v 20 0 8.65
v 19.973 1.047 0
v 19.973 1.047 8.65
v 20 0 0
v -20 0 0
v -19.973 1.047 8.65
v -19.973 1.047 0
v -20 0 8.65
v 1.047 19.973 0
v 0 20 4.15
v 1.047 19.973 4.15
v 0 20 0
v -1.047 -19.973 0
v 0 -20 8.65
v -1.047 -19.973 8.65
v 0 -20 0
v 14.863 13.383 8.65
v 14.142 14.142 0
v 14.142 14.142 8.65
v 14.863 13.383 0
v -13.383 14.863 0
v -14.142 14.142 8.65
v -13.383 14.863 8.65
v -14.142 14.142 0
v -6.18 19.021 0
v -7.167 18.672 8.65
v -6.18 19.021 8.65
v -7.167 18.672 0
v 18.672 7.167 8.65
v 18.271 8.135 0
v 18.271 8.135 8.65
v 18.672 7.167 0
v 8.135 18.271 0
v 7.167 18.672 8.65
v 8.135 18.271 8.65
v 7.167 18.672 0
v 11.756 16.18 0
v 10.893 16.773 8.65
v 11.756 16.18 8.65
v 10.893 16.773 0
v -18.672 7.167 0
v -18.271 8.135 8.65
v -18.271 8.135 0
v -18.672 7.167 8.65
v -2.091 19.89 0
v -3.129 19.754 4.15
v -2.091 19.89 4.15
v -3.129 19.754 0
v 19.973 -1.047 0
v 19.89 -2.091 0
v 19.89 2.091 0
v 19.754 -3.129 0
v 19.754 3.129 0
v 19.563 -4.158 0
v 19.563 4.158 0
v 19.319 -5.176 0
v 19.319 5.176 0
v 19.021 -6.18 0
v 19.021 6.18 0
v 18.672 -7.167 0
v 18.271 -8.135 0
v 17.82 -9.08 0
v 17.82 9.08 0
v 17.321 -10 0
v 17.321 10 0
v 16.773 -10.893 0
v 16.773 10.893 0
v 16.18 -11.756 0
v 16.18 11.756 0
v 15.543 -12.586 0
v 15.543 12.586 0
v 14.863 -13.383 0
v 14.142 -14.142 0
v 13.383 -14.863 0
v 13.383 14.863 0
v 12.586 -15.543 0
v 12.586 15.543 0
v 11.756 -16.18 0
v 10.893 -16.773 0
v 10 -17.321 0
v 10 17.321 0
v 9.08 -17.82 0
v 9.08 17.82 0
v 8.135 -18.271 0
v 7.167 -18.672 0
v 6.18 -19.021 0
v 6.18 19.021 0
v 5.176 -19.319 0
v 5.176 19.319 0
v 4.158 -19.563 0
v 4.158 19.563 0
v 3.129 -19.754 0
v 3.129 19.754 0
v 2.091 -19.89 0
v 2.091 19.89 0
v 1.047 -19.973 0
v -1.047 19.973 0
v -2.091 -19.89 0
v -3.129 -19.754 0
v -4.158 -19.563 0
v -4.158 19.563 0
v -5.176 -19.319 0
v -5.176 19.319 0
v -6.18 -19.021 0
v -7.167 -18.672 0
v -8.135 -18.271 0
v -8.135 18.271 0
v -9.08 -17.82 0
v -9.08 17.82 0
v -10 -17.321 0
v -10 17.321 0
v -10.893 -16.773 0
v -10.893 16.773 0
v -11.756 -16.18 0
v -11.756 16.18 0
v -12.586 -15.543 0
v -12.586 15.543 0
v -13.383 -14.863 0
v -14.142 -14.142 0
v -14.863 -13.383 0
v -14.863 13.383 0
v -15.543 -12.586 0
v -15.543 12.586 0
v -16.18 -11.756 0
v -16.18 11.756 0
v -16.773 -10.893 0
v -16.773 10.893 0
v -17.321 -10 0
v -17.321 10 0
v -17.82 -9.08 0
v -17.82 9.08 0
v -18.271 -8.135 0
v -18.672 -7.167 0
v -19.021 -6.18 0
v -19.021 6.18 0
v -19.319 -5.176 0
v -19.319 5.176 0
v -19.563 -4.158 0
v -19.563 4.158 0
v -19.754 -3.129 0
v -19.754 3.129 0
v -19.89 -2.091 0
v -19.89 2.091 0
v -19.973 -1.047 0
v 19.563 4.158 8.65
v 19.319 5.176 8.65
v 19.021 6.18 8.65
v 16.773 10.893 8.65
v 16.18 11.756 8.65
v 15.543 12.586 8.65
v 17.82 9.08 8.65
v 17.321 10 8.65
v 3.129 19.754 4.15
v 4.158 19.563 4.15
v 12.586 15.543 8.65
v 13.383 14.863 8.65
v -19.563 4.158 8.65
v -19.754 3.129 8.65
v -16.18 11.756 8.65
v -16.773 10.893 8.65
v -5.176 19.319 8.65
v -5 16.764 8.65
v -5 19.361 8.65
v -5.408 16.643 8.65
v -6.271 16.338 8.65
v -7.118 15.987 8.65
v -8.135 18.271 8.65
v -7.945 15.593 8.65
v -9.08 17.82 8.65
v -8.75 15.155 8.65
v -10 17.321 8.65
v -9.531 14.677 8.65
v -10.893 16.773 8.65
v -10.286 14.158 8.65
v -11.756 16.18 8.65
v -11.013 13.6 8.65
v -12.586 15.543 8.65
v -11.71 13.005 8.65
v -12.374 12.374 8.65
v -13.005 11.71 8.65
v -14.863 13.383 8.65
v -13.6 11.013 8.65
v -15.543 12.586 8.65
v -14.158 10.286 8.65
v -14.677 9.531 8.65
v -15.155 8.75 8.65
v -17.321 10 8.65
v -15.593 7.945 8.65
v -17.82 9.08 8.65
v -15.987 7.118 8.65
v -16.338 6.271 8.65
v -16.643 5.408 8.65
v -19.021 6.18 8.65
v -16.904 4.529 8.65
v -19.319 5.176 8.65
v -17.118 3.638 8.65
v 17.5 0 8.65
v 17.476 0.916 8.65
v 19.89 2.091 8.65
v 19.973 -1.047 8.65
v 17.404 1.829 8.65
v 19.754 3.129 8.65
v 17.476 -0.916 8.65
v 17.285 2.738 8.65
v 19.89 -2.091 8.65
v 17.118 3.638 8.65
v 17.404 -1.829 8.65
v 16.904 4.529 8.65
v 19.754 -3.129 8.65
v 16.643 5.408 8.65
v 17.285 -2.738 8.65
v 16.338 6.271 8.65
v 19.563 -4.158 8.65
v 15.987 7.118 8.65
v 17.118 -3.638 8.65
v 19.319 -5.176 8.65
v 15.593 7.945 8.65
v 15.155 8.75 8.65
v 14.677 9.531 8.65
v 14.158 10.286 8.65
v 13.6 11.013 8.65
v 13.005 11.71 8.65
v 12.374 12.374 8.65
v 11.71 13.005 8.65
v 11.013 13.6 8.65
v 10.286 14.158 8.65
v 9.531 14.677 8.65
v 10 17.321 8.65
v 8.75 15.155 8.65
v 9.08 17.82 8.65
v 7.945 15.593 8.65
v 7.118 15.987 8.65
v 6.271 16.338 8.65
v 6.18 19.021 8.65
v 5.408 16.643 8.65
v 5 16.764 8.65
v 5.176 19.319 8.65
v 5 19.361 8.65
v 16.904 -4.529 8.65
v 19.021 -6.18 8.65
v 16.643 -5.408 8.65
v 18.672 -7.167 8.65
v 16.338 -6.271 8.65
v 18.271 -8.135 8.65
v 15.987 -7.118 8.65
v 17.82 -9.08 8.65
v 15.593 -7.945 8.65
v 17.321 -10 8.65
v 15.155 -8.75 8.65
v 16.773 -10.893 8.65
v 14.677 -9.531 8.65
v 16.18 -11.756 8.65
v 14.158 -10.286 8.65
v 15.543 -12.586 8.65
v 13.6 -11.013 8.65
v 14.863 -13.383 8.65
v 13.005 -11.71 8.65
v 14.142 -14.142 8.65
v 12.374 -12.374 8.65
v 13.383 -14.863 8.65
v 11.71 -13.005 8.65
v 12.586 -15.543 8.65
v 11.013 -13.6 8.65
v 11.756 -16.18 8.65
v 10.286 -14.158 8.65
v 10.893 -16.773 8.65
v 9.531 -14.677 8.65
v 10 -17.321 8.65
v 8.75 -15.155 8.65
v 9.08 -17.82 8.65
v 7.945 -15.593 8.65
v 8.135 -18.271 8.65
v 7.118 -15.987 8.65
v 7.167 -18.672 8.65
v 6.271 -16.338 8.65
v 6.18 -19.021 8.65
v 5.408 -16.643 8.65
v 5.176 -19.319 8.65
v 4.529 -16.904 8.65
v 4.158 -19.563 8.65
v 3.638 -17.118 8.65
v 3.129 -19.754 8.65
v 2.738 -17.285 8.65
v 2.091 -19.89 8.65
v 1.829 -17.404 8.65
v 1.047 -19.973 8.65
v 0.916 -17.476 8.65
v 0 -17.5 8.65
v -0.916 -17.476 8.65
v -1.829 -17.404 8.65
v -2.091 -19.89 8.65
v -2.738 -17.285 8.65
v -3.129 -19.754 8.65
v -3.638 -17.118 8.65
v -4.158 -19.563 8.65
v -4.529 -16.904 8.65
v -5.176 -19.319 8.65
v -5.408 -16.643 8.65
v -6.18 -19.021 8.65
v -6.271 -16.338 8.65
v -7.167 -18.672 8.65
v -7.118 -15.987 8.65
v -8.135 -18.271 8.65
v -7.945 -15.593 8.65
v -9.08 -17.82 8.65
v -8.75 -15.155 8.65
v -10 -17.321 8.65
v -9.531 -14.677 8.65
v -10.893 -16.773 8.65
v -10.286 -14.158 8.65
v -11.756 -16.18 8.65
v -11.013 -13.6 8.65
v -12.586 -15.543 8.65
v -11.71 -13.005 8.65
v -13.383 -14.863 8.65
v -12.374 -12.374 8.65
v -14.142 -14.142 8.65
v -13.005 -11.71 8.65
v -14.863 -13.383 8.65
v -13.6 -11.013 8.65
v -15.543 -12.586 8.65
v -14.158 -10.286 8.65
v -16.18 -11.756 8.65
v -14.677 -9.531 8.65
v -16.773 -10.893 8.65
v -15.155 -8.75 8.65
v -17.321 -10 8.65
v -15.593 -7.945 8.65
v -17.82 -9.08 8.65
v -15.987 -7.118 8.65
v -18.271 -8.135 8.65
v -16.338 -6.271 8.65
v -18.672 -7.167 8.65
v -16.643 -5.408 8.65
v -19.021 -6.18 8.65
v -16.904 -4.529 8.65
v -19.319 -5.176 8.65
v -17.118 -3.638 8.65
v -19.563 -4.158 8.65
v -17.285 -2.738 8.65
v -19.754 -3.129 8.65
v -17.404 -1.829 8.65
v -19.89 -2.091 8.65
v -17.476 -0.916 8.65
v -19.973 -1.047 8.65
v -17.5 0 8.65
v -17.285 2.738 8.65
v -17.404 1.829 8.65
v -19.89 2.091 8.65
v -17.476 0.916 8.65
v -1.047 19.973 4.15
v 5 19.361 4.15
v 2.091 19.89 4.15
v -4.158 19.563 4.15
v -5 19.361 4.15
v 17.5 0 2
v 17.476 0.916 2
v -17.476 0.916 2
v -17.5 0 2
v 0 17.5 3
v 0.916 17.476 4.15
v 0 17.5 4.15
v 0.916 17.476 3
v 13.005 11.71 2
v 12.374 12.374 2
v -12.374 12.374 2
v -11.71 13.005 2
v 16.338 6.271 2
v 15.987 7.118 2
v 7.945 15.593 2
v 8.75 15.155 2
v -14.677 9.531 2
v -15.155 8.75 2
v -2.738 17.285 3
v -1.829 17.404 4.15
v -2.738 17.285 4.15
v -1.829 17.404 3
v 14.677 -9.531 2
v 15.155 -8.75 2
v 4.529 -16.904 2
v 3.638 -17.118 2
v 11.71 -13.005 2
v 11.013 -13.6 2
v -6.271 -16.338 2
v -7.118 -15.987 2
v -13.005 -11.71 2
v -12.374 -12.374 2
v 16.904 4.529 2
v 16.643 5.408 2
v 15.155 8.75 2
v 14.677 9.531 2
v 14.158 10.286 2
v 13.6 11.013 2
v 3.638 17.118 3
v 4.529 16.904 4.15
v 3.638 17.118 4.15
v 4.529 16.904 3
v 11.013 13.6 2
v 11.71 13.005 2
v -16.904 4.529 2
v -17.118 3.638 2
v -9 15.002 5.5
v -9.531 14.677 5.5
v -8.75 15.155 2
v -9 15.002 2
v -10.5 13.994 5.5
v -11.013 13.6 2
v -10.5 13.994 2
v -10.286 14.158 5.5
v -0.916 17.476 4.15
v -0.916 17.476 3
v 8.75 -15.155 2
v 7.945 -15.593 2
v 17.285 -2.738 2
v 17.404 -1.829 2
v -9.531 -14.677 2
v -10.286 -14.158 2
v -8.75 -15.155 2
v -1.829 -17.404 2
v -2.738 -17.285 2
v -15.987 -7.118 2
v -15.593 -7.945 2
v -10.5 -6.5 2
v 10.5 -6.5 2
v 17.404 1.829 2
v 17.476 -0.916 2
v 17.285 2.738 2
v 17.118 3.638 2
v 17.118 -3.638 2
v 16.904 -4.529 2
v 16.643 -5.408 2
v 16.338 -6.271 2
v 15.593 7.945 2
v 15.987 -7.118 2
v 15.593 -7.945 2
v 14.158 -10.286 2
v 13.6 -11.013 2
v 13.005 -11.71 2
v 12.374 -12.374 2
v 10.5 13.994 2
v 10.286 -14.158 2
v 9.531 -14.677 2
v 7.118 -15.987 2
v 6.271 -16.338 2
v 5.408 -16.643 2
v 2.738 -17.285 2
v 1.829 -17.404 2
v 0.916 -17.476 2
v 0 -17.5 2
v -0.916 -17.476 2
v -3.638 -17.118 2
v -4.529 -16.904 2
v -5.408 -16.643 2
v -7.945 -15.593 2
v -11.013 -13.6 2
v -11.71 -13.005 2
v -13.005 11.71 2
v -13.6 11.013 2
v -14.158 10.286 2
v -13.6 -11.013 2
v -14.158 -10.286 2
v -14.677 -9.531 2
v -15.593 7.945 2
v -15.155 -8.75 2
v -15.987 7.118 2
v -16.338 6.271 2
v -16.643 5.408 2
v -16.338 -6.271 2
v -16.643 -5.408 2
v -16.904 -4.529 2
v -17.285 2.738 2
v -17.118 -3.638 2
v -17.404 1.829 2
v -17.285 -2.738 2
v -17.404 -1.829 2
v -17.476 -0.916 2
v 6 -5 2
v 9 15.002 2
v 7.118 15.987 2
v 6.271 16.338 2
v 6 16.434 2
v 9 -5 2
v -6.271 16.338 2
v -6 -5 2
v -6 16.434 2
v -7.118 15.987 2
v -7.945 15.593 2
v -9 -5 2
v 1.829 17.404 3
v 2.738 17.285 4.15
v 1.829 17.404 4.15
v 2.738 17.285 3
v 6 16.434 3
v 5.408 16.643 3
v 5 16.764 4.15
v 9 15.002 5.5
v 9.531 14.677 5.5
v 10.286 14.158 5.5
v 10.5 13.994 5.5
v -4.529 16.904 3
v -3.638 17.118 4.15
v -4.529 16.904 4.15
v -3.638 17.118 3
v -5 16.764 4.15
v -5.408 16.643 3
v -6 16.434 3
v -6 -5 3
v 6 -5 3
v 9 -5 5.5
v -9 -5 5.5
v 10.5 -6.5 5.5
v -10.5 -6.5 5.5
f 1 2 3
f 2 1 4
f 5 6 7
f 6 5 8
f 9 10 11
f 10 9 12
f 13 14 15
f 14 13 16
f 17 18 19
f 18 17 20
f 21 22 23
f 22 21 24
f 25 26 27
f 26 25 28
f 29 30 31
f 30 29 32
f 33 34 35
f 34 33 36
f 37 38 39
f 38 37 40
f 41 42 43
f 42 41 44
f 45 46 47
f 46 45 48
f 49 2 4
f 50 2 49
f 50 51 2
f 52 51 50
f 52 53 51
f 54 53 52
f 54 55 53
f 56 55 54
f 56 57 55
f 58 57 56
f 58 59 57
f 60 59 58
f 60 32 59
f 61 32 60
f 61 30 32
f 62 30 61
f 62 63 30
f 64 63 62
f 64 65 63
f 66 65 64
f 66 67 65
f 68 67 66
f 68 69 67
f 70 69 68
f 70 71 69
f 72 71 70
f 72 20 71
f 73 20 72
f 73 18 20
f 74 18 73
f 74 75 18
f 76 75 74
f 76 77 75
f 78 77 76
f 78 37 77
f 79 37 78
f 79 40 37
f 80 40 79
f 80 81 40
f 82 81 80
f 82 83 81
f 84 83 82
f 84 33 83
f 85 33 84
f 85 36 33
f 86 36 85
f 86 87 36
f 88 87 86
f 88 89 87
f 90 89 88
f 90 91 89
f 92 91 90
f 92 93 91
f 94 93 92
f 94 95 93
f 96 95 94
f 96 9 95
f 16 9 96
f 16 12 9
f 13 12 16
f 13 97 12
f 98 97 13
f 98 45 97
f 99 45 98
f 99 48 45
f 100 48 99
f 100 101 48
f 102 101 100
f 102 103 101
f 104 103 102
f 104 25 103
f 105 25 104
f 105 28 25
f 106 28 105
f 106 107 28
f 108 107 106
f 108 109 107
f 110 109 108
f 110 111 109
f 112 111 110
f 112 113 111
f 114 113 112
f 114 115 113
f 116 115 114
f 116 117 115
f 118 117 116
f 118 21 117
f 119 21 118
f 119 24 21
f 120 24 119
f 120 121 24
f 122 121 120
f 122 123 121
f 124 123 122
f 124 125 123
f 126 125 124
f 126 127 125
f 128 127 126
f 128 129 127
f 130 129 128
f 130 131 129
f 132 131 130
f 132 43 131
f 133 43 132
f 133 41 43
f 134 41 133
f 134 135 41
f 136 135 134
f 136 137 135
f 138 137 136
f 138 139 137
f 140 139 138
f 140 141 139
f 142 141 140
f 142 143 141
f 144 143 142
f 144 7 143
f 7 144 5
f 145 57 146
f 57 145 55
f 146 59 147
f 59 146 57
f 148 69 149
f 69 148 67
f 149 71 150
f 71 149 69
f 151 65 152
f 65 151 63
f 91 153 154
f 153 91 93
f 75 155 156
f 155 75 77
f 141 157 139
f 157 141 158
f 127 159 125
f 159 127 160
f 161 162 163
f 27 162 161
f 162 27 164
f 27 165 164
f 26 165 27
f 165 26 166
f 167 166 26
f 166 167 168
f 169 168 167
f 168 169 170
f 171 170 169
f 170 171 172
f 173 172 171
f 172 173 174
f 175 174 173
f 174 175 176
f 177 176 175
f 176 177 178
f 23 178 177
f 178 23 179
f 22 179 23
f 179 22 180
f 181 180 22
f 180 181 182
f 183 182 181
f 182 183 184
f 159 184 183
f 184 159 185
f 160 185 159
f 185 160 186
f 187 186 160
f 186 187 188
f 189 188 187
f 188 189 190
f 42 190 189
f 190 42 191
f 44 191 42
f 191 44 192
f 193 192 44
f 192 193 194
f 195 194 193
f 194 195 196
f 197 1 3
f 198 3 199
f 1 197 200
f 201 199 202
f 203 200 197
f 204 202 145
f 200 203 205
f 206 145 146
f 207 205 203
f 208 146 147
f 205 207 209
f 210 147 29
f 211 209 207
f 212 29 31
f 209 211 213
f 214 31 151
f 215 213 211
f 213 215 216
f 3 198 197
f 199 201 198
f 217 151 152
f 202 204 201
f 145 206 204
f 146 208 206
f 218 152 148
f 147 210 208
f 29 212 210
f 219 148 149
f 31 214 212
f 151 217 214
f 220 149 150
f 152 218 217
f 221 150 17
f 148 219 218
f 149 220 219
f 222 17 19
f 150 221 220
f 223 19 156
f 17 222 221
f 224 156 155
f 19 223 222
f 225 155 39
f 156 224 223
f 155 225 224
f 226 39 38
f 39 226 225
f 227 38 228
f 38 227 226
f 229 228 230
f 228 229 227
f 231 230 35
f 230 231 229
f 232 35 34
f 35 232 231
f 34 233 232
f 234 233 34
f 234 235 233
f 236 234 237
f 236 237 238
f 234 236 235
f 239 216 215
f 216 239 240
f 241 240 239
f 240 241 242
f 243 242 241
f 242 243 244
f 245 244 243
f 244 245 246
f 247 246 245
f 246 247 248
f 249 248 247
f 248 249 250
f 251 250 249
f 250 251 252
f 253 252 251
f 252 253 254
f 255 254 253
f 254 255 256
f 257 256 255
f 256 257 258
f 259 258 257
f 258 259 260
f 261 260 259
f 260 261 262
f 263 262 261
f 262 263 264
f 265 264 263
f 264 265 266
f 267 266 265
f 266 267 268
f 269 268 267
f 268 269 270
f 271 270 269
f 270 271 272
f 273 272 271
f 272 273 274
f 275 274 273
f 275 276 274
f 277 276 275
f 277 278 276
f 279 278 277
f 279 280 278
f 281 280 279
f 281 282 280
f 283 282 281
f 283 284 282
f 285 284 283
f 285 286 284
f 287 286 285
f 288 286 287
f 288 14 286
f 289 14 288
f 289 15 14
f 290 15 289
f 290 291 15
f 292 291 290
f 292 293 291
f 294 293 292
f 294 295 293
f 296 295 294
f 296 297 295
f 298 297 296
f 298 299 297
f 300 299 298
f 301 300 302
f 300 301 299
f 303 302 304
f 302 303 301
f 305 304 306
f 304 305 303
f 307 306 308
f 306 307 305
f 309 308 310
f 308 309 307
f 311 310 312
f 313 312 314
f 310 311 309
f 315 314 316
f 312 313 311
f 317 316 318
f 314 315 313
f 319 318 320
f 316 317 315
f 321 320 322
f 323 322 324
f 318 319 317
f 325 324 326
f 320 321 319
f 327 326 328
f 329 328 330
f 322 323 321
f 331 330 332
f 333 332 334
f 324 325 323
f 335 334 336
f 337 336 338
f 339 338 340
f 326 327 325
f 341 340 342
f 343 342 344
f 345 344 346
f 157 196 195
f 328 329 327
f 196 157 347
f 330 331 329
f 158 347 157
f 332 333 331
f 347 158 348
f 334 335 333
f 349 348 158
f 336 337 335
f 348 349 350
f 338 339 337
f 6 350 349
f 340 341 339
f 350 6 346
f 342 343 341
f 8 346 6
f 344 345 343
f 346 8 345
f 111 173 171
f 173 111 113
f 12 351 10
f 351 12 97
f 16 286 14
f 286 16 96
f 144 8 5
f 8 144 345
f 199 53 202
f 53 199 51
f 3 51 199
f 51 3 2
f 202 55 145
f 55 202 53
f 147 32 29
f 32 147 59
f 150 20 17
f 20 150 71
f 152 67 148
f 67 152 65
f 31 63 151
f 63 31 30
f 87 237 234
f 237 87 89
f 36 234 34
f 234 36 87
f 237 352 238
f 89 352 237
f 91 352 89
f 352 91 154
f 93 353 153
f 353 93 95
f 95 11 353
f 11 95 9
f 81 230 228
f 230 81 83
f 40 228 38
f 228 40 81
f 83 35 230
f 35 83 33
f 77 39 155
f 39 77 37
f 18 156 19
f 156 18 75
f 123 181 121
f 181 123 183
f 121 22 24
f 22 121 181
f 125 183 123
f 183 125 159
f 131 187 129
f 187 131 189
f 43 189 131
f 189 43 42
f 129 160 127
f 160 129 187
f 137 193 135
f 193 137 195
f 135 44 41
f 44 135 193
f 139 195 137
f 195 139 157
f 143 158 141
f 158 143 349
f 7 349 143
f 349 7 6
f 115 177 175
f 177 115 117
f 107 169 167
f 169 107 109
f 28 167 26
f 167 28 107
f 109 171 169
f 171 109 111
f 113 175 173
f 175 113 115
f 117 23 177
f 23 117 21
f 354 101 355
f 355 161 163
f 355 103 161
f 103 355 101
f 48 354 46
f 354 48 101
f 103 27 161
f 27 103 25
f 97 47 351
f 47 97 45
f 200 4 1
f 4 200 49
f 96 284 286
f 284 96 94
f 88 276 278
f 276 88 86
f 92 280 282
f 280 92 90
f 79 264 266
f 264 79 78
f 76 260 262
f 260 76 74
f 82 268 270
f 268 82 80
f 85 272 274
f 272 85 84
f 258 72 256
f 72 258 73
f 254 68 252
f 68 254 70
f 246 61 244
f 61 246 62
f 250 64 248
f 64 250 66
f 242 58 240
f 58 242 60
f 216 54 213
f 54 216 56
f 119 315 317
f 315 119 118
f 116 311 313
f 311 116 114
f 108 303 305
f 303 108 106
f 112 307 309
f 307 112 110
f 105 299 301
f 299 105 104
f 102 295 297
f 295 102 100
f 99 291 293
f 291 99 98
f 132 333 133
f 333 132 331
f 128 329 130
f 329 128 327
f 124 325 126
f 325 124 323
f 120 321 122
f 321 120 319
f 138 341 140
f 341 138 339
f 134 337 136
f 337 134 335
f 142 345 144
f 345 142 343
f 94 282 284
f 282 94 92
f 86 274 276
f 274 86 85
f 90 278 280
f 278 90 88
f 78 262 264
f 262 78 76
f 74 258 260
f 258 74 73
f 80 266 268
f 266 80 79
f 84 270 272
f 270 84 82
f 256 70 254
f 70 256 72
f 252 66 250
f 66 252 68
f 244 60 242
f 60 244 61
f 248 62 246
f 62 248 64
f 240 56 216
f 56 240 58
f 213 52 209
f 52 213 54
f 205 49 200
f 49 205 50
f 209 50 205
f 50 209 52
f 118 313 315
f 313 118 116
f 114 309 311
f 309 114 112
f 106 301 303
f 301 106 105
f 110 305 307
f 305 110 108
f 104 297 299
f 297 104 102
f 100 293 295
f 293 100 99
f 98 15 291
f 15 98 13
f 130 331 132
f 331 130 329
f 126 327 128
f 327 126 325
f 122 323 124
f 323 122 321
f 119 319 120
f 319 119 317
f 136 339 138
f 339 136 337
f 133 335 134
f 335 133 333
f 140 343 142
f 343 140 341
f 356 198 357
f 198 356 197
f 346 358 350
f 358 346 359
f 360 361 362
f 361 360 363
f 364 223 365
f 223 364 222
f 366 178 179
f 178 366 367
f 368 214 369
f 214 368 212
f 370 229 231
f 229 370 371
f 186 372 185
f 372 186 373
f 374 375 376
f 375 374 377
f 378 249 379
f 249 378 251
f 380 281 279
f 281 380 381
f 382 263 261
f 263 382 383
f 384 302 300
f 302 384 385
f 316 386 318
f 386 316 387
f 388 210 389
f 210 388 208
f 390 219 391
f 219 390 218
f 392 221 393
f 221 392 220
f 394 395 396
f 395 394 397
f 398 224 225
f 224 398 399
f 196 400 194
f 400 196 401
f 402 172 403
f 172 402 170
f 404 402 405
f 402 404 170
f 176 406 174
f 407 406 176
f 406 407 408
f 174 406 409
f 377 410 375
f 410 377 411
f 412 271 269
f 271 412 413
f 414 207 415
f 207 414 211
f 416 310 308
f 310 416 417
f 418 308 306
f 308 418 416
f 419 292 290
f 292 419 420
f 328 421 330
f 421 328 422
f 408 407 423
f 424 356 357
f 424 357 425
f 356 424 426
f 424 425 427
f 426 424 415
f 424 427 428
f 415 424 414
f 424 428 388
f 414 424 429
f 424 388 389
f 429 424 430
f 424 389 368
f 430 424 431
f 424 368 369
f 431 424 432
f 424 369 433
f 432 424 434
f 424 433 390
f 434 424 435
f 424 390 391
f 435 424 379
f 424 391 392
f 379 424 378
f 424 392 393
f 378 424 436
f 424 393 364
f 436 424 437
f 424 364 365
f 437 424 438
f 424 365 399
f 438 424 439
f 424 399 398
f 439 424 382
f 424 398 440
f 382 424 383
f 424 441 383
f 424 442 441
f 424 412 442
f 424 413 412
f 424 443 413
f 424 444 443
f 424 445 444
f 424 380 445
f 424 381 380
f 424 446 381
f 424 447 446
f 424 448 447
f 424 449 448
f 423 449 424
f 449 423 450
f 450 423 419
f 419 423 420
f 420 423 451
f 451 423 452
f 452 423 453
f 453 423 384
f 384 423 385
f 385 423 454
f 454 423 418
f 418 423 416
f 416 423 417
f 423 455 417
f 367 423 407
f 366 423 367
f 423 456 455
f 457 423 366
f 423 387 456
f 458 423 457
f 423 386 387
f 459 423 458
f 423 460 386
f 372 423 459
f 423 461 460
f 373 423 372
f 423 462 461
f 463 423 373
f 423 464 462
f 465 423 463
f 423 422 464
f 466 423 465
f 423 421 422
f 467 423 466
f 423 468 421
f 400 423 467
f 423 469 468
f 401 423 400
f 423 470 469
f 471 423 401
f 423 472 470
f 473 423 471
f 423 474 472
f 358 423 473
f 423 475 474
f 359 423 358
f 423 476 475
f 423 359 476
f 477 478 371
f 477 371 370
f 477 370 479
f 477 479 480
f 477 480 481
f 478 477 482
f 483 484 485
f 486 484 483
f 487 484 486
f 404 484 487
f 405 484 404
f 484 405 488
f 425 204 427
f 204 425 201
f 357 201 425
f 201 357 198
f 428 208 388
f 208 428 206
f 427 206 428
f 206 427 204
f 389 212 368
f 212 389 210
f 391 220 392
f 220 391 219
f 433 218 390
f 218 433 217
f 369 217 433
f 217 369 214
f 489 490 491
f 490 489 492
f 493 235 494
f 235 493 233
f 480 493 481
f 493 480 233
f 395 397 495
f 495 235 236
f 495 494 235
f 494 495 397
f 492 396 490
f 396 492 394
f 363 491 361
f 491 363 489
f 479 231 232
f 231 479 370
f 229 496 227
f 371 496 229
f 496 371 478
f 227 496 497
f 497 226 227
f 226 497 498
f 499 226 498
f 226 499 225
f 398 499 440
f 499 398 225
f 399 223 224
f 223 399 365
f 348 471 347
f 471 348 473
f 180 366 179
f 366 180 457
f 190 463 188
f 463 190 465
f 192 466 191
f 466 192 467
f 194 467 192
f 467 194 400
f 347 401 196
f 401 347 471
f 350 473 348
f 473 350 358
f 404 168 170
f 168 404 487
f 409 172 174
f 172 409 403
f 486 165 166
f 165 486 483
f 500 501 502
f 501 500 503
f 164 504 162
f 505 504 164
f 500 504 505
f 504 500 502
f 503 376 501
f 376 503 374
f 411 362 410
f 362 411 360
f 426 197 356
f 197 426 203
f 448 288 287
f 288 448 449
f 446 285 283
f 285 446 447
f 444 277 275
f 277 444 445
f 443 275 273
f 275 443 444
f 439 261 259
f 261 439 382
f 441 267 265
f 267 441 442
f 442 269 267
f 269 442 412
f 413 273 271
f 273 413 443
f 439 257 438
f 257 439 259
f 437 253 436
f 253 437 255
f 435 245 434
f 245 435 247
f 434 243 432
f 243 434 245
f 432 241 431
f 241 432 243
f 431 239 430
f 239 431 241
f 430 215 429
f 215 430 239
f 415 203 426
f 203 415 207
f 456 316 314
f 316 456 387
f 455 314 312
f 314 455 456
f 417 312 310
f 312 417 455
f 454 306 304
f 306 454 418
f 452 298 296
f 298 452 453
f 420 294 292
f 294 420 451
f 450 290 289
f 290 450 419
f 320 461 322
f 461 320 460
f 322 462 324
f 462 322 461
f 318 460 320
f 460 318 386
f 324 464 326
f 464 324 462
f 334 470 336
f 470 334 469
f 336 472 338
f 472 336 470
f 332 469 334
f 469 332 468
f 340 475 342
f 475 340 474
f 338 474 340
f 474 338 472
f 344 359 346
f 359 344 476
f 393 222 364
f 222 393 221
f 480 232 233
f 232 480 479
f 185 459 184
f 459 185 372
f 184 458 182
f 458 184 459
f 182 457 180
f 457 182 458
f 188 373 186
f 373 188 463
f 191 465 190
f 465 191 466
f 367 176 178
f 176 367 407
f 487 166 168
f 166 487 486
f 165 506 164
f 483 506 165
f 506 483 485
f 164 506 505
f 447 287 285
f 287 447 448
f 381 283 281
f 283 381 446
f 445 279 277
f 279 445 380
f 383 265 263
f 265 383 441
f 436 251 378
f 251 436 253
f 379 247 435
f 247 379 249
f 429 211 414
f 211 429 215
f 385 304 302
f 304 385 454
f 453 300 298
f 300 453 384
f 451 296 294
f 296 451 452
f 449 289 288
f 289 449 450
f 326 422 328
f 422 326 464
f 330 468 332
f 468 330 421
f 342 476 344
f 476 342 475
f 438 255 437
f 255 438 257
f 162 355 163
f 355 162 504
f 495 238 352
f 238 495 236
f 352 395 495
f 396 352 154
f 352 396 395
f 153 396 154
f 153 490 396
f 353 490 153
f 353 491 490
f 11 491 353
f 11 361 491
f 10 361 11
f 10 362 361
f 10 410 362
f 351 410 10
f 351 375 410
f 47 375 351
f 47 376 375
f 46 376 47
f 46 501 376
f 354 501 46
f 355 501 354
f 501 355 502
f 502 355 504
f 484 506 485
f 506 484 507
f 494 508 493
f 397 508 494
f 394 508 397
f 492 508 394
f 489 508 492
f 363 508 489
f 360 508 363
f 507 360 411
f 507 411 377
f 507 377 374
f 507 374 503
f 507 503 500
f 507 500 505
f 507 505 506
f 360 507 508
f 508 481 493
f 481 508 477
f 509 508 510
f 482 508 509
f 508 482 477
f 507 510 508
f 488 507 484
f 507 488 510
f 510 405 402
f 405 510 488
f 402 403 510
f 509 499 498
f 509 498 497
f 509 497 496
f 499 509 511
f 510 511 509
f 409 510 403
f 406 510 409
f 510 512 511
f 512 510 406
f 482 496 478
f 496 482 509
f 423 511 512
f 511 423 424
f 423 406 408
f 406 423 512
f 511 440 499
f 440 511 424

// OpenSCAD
include <BOSL/constants.scad>
use <BOSL/shapes.scad>
use <BOSL/transforms.scad>
use <BOSL/masks.scad>

fileVersion = "1D";
  
$fn=120; //circle smoothness

main();
qtpy();
snapring();
  
module main(){
  difference(){
    color("lime") cylinder(h=8.65, d=40); //disc object
    color("green") up(2) cylinder(h=10, d=35);
   //QT PY USB -- 1.65 is thickness of the qtpy pcb
    color("peru") translate([-(10/2), 15, 2.5+1.65]) cube([10,8,3.50+1]); 

  }
}  

module qtpy() {
     //riser for QT PY
    color("teal") translate([-(12/2), -5, 1]) cube([12,23,2]);
    //bumper for QT PY
    color("CadetBlue") translate([-(18/2), -6.5, 1]) cube([18, 1.5, 4.5]); 
    //side bumpers for QT PY
    color("royalblue") translate([-10.5, -6.5, 1]) cube([1.5, 22, 4.5]);
    color("royalblue") translate([+9, -6.5, 1]) cube([1.5, 22, 4.5]);
}

module snapring() {
  //color("purple") tube(
}
